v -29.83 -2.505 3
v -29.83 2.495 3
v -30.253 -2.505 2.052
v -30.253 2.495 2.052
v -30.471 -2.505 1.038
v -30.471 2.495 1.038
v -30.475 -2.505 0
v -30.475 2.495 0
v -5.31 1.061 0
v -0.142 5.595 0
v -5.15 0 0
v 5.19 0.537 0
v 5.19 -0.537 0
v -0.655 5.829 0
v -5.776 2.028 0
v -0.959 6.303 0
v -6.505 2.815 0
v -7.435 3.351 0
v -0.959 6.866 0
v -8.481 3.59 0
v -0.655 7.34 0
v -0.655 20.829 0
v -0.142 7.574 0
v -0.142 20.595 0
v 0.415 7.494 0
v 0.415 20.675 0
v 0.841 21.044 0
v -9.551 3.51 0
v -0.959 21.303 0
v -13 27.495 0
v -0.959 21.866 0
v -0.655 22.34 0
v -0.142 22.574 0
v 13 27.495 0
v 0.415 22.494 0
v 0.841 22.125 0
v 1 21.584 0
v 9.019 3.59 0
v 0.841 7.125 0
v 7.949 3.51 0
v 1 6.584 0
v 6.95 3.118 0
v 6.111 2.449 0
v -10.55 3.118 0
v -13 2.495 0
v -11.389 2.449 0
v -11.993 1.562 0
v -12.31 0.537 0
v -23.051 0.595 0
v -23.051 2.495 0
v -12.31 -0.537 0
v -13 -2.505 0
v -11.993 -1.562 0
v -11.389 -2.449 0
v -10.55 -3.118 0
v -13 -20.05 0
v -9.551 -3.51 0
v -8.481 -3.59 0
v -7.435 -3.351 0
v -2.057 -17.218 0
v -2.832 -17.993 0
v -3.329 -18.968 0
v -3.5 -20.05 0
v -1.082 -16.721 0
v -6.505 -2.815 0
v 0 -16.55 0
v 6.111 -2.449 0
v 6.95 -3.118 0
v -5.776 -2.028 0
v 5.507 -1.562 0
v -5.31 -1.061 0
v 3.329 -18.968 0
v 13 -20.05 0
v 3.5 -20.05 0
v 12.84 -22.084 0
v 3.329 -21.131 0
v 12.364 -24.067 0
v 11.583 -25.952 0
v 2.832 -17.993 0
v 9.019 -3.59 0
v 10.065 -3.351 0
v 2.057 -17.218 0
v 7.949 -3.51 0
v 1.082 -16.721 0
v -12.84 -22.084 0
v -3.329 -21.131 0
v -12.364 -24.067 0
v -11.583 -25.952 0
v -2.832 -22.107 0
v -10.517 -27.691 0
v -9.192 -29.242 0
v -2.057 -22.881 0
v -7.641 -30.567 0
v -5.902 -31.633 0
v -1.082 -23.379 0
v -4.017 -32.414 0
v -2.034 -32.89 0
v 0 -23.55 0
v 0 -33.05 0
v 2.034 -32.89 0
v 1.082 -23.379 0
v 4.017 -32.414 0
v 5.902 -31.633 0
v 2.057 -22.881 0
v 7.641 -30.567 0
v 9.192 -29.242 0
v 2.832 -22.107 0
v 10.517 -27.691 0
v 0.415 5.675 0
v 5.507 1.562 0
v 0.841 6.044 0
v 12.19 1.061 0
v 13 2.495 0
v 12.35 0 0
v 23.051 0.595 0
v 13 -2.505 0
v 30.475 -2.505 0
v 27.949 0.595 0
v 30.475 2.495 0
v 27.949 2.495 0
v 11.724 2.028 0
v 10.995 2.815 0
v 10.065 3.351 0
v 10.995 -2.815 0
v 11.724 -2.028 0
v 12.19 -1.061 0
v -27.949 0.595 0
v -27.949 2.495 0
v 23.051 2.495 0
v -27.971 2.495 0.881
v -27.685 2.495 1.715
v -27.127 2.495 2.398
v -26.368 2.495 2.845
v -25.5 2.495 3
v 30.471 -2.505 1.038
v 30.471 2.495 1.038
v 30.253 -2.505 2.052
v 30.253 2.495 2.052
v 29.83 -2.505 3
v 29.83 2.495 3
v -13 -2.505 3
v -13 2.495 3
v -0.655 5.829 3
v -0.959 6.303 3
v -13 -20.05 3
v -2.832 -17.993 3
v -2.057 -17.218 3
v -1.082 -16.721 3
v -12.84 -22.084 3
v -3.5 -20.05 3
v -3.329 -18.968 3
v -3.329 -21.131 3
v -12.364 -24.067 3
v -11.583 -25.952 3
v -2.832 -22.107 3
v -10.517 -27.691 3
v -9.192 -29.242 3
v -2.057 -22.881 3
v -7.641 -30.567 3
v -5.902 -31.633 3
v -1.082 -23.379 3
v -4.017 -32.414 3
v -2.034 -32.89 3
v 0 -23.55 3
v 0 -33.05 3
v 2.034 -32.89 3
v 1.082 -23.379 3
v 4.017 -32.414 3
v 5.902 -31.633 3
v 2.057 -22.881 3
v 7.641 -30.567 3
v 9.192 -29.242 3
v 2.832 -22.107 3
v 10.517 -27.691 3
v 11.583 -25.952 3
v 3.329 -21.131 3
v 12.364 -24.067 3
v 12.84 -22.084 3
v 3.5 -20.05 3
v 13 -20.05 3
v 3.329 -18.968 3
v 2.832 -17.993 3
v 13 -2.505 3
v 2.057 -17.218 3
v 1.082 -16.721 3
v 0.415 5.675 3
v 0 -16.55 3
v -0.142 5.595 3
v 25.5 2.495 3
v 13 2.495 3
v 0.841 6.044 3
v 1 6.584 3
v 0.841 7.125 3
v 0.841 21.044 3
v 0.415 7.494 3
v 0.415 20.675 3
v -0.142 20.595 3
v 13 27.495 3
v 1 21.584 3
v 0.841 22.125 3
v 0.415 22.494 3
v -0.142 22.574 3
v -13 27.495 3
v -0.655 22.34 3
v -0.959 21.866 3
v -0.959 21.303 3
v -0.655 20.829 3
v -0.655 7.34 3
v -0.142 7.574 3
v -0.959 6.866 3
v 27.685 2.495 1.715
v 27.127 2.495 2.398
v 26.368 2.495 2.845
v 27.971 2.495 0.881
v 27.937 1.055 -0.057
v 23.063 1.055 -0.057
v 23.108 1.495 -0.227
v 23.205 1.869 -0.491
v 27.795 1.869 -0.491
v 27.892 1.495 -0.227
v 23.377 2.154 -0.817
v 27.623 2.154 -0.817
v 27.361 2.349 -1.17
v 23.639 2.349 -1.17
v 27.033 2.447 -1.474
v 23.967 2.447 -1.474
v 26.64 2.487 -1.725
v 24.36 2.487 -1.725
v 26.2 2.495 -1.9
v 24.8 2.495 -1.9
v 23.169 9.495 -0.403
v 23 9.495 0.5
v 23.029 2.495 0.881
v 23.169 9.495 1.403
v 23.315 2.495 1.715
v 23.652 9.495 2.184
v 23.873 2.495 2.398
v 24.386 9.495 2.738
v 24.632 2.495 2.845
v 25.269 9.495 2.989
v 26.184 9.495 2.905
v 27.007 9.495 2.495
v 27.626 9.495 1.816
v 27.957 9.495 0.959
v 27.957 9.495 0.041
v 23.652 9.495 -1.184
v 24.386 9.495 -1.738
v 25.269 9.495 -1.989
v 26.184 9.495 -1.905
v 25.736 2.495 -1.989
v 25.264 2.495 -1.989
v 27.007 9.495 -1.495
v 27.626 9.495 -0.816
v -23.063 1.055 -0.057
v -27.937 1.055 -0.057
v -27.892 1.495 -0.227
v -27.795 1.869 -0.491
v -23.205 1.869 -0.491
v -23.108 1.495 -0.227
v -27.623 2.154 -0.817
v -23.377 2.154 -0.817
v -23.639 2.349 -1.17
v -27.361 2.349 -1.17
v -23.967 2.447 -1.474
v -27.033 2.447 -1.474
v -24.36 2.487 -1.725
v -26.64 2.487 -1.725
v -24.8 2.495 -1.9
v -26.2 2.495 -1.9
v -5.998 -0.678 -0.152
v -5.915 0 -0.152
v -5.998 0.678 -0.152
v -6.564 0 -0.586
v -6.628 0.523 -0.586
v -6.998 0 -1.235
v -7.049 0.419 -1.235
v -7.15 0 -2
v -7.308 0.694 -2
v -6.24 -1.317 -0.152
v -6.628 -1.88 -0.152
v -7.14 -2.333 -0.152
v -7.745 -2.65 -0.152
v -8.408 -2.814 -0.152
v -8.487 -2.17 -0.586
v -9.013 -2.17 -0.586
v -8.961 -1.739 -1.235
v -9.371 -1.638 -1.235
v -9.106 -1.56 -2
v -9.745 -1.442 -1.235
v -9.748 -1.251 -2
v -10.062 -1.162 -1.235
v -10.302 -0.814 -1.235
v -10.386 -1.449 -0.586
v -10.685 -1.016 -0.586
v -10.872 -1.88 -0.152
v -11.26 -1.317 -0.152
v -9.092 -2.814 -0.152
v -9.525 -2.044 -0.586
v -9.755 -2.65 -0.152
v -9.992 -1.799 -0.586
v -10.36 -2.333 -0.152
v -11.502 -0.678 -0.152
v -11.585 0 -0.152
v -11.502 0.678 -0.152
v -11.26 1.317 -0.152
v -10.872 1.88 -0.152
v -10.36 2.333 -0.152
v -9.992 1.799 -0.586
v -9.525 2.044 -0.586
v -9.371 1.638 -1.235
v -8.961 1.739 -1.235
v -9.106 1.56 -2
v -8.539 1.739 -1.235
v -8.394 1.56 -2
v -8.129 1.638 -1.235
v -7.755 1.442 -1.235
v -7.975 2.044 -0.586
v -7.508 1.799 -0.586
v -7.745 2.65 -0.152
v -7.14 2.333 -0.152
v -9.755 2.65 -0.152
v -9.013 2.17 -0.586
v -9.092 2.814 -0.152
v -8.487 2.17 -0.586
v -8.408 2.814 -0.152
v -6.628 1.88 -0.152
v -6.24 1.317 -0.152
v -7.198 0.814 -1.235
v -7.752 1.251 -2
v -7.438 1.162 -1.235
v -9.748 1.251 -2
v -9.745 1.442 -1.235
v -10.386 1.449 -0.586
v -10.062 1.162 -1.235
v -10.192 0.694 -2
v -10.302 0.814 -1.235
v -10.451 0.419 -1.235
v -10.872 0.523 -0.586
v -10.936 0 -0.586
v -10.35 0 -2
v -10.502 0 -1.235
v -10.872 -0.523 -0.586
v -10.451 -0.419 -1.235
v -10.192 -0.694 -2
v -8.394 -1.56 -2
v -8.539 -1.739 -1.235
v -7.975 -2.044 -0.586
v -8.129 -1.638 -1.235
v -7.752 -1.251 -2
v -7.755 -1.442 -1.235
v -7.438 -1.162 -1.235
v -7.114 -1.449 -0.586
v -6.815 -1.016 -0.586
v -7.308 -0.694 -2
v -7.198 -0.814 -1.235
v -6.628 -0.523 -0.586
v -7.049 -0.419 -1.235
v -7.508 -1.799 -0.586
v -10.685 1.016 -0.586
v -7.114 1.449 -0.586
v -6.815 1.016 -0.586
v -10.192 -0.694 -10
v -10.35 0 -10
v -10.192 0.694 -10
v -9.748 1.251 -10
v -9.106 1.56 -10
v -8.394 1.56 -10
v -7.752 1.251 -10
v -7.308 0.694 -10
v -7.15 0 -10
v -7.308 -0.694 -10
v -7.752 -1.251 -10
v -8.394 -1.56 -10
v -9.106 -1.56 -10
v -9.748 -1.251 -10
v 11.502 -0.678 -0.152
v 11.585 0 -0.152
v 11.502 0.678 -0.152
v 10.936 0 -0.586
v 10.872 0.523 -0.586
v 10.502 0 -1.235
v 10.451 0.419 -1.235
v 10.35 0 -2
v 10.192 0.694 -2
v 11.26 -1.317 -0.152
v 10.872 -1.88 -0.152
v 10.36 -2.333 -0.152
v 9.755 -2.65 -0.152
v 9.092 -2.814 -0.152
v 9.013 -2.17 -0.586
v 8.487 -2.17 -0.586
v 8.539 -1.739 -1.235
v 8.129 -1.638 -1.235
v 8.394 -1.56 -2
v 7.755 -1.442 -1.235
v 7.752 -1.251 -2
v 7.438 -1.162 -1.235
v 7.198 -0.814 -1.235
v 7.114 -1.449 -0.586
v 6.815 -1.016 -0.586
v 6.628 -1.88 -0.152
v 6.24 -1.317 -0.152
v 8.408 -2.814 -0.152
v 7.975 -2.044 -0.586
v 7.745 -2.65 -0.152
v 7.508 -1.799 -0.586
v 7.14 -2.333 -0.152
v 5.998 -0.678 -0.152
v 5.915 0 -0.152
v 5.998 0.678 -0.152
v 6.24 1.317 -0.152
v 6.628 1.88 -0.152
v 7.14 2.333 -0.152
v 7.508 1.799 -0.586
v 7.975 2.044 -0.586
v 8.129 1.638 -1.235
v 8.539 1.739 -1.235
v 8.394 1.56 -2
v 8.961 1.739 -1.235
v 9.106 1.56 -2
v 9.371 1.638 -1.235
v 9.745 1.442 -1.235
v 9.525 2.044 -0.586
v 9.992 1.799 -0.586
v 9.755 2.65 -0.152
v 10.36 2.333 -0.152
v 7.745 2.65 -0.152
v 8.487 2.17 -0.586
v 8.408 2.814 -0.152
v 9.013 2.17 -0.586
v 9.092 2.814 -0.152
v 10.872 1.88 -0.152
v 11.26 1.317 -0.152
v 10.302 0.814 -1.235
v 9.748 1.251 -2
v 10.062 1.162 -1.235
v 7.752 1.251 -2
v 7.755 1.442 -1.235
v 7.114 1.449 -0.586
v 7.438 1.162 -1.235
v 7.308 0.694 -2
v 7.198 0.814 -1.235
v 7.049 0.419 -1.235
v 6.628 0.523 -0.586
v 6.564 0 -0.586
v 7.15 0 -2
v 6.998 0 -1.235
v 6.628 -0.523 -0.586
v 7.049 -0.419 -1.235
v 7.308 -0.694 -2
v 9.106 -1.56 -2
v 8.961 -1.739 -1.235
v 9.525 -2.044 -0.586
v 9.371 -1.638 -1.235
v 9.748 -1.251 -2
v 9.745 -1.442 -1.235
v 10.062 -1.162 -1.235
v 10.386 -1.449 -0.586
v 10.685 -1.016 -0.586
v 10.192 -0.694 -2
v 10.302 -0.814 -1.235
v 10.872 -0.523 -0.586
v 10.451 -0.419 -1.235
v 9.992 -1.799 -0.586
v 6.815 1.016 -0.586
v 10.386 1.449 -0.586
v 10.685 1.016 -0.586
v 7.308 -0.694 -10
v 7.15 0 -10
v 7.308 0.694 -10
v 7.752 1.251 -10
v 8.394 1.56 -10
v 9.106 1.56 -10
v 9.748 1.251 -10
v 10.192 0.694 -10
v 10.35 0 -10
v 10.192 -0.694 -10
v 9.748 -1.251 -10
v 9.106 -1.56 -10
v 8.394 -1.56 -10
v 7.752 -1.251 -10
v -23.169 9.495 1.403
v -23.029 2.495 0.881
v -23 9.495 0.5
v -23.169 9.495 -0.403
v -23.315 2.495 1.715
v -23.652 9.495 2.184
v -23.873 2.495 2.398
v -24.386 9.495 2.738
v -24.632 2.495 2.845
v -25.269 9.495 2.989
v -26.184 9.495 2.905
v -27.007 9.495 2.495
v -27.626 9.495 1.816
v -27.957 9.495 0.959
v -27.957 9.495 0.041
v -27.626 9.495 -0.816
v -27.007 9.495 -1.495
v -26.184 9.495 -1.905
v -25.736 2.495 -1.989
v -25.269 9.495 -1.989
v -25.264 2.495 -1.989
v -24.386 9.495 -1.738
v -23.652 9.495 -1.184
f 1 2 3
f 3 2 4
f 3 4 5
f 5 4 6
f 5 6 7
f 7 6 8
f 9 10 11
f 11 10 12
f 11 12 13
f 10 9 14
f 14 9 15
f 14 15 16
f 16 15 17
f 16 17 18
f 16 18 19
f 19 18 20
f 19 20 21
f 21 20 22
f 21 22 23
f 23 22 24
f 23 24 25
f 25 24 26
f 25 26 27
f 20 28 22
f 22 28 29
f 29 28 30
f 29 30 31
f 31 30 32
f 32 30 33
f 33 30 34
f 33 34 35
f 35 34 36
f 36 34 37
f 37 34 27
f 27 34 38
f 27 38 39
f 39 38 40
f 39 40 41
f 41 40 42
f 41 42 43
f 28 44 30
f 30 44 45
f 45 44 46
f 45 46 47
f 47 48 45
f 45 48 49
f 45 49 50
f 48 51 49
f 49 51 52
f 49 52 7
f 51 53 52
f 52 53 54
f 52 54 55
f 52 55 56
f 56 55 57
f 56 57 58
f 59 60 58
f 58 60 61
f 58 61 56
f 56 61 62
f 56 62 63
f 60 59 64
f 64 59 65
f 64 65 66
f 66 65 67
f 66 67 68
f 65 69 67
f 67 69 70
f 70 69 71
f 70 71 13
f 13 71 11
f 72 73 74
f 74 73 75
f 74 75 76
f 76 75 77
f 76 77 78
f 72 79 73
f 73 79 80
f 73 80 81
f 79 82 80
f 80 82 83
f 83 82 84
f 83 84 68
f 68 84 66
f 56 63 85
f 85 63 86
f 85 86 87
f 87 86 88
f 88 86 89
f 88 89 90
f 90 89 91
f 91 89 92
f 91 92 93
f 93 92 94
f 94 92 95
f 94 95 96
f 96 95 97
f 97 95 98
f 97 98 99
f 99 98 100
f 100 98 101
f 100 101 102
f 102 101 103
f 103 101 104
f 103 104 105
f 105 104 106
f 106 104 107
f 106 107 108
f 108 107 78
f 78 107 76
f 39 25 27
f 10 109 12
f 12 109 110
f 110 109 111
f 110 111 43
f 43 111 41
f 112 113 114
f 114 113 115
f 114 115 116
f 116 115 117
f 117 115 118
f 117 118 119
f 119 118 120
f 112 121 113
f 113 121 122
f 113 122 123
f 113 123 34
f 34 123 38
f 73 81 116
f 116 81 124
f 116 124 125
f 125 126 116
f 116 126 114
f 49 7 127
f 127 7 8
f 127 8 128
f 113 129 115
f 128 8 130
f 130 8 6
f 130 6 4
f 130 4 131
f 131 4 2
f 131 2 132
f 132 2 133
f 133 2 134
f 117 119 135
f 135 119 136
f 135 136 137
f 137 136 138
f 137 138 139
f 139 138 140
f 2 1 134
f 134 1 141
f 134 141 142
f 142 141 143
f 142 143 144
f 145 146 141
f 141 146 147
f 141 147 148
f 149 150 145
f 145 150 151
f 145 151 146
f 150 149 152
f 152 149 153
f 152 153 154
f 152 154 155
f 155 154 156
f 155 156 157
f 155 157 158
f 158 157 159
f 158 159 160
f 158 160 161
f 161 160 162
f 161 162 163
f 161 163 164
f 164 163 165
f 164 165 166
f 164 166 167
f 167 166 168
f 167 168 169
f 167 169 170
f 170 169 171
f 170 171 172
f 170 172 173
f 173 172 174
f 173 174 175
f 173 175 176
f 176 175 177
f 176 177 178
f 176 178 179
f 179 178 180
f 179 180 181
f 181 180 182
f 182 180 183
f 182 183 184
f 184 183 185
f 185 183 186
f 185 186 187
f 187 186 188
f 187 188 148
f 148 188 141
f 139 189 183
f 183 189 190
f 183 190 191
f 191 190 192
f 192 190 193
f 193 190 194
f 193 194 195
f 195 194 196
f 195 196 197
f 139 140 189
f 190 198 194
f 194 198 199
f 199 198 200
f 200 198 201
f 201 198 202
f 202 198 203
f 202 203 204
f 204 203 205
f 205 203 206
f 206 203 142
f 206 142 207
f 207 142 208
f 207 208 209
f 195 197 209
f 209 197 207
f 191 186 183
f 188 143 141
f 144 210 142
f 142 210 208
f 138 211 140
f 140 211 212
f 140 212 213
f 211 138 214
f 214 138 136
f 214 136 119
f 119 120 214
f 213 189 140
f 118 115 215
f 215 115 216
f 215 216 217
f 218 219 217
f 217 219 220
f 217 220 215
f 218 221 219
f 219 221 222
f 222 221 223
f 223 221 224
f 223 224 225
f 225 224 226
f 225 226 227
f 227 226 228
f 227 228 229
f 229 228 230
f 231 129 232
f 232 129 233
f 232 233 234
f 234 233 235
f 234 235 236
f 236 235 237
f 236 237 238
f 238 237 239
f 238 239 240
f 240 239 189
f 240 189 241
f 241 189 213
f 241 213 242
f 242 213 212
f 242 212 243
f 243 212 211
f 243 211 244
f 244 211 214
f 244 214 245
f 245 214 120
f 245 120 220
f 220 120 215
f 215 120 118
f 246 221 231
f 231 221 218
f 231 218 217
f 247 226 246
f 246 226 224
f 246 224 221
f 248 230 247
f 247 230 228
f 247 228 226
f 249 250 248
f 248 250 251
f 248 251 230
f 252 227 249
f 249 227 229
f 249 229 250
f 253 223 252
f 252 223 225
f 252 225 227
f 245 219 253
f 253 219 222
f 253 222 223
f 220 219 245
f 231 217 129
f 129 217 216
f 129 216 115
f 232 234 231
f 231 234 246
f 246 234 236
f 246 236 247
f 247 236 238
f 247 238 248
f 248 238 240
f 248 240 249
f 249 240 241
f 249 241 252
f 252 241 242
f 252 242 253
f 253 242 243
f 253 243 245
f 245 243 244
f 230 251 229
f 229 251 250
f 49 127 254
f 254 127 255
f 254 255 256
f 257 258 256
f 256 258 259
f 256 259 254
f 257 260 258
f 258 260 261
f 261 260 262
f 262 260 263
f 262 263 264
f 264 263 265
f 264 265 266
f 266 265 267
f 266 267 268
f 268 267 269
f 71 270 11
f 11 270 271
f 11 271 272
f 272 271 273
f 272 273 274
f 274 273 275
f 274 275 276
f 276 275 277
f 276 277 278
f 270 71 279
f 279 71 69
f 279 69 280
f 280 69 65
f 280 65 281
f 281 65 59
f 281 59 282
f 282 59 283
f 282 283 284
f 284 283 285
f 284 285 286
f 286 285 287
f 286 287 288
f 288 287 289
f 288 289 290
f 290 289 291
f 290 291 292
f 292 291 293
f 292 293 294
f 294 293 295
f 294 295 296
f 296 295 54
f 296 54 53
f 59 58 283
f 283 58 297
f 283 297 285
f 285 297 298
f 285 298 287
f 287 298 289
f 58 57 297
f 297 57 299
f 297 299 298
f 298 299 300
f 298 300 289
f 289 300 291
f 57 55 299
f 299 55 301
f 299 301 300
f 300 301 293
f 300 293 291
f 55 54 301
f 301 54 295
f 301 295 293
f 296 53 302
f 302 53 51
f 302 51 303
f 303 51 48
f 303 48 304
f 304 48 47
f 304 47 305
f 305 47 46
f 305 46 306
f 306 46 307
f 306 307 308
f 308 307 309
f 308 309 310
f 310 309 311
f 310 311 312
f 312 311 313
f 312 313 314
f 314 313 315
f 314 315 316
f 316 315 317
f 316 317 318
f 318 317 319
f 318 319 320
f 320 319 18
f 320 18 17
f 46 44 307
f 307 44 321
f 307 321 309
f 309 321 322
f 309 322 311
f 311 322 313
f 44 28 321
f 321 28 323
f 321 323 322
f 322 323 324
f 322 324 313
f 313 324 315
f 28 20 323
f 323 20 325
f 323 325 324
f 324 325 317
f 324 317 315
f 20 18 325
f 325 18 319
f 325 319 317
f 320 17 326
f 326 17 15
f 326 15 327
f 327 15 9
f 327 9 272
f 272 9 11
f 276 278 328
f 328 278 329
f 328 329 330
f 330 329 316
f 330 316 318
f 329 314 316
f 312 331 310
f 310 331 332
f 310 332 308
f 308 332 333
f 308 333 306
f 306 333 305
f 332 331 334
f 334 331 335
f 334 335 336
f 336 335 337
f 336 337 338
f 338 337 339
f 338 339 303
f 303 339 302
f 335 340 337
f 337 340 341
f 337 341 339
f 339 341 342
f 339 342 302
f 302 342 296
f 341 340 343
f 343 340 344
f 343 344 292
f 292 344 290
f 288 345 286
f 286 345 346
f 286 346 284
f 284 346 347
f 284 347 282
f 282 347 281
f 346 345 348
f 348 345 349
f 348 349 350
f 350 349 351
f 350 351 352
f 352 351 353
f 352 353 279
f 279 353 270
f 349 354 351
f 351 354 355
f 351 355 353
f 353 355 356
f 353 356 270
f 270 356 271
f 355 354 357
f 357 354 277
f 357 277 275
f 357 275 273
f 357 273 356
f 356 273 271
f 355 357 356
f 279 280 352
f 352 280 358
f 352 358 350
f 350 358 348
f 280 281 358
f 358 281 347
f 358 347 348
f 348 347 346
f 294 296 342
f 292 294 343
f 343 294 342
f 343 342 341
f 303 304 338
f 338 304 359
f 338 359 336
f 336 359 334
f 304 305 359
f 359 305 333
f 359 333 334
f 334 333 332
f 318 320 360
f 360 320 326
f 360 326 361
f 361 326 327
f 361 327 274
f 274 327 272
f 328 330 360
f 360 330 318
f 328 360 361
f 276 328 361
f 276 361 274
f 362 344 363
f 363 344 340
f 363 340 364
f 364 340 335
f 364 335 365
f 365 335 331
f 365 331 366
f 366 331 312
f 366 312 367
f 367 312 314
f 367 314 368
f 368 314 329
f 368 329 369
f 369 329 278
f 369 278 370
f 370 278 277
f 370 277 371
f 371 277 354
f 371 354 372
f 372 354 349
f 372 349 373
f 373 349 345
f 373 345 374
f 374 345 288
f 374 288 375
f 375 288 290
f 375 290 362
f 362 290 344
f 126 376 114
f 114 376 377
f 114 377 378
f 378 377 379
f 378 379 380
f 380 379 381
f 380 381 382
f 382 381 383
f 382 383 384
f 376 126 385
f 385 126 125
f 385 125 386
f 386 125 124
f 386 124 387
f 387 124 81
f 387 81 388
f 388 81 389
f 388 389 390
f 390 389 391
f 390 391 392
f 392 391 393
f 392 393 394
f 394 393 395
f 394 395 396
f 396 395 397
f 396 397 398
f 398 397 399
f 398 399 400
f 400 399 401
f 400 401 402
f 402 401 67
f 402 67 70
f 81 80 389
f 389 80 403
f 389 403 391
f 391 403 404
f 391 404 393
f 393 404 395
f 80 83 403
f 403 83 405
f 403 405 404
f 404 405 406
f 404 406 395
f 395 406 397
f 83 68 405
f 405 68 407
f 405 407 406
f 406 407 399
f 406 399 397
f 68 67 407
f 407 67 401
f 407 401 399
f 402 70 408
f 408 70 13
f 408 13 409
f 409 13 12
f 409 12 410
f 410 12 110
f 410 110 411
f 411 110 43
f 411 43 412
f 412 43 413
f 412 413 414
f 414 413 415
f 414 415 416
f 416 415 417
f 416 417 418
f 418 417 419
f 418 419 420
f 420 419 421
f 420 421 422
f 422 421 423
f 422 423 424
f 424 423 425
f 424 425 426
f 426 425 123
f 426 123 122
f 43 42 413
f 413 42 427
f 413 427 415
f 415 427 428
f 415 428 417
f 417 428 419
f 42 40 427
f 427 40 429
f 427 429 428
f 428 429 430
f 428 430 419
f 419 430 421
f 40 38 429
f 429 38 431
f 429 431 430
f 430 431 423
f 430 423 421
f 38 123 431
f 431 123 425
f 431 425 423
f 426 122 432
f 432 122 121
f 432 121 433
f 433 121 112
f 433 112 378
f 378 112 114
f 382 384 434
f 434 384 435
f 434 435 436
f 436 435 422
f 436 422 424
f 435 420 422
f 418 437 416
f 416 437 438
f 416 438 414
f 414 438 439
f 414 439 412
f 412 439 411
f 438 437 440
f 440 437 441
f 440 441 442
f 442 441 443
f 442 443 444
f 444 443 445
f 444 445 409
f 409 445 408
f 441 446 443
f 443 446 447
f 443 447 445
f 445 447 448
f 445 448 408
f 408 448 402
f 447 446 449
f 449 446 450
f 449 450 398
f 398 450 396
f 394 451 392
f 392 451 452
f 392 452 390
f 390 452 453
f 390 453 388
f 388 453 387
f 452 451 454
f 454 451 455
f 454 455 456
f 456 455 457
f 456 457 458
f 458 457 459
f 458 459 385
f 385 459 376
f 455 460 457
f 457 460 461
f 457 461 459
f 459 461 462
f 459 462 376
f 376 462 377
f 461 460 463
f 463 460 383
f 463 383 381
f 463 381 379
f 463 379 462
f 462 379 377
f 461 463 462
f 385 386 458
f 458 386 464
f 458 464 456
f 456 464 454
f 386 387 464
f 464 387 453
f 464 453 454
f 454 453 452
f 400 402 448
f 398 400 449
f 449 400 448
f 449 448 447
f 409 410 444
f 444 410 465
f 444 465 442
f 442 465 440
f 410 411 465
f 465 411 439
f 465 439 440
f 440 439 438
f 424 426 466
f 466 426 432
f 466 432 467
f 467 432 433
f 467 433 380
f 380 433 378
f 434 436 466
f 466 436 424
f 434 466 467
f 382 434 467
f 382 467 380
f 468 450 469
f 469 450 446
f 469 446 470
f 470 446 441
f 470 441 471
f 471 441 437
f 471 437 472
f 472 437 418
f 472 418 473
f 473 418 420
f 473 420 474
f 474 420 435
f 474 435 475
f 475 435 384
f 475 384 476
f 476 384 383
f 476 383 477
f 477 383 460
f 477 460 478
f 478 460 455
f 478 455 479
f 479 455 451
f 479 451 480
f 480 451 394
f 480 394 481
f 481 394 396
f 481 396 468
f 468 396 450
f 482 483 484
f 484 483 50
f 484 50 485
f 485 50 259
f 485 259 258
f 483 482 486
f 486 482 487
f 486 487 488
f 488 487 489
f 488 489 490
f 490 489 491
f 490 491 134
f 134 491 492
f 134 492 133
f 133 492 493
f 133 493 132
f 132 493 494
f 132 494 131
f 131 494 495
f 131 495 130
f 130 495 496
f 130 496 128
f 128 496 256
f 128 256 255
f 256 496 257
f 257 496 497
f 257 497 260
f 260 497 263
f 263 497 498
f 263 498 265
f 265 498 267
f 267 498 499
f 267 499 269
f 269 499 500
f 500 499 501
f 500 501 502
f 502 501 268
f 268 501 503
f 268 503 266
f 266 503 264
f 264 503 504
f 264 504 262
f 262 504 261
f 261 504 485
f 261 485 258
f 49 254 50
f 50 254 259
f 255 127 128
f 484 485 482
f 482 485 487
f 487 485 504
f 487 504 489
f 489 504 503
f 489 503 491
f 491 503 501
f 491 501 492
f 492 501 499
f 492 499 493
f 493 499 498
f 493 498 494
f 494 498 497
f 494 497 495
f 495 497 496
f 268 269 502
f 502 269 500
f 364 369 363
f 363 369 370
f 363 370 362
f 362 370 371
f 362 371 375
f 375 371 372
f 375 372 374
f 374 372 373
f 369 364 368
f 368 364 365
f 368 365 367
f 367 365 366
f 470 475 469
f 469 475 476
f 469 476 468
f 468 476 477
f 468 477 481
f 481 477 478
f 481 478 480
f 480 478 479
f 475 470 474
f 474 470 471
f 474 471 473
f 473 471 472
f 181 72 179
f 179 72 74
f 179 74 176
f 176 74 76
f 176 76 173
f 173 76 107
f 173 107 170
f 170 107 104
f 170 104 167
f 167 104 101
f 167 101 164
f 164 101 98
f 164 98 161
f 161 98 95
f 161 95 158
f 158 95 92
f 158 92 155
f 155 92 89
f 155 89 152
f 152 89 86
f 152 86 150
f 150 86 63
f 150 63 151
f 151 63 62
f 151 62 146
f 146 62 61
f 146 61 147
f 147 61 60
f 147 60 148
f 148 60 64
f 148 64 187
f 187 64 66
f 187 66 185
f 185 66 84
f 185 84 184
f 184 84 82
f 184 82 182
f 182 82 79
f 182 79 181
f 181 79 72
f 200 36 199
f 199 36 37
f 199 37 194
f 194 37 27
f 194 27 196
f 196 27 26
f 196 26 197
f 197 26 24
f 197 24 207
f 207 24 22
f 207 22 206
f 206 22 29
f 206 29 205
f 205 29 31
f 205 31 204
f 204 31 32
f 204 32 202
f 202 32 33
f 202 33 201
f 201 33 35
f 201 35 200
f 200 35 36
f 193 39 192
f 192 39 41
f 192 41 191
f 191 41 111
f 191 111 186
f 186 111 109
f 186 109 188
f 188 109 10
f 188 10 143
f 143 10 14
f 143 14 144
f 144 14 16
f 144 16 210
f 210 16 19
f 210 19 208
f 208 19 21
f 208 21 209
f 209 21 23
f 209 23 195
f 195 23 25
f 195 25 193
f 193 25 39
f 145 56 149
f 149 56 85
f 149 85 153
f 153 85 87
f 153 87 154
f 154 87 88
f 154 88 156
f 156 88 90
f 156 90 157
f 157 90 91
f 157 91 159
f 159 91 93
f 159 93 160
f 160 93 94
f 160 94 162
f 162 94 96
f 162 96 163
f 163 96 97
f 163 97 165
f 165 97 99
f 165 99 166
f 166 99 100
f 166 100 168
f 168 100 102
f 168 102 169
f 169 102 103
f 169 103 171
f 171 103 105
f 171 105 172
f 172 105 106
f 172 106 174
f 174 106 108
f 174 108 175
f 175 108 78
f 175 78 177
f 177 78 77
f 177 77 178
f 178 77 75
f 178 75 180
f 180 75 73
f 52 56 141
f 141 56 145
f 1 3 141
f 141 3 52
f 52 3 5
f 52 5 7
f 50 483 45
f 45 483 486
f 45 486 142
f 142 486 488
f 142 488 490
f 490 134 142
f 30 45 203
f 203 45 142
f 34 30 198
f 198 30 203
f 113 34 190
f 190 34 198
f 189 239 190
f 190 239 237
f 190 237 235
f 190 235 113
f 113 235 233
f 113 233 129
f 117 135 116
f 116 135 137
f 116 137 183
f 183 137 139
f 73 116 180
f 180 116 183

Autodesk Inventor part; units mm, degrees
ref_plane "YZ Plane" through (0, 0, 0) normal (1, 0, 0) x (0, 1, 0)
ref_plane "XZ Plane" through (0, 0, 0) normal (0, 1, 0) x (-1, 0, 0)
ref_plane "XY Plane" through (0, 0, 0) normal (0, 0, 1) x (1, 0, 0)
sketch "Sketch1" plane through (0, 0, 0) normal (0, 0, 1) x (1, 0, 0)
  line L0 (0, 8.9678) -> (0, -21.984)
  line L1 (-55.9342, 0) -> (8.6032, 0)
  circle A0 centre (-8.75, 0) radius 1.6
  circle A1 centre (8.75, 0) radius 1.6
  line L2 (-13, 27.4955) -> (13, 27.4955)
  line L3 (13, 27.4955) -> (13, -20.0499)
  line L4 (-13, -20.0499) -> (-13, 27.4955)
  circle A2 centre (0, 21.5844) radius 1
  circle A3 centre (0, 6.5844) radius 1
  circle A4 centre (0, -20.0499) radius 3.5
  line L5 (0, -20.0499) -> (8.75, 0)
  arc A5 (-13, -20.0499) -> (13, -20.0499) centre (0, -20.0499) ccw
  line L6 (-13, 2.4955) -> (-33, 2.4955)
  line L7 (-33, 2.4955) -> (-33, -2.5045)
  line L8 (-33, -2.5045) -> (-13, -2.5045)
  line L9 (13, 2.4955) -> (33, 2.4955)
  line L10 (33, 2.4955) -> (33, -2.5045)
  line L11 (33, -2.5045) -> (13, -2.5045)
  point P0 (0, 0)
  point P1 (-13, -2.5045)
  dimension "d1" = 17.5
  dimension "d2" = 3.2
  dimension "d3" = 15
  dimension "d4" = 2
  dimension "d7" = 26
  dimension "d8" = 7
  dimension "d9" = 21.876
  dimension "d14" = 5
  dimension "d15" = 20
  dimension "d22" = 25
extrude "Extrusion1" add sketch "Sketch1" along normal blind 3 contours L1 A1 L5 A4 L0 | L7 L6 L4 L1 | L1 L4 L8 L7 | L4 L2 L3 A5 | L3 L9 L10 L11
sketch "Sketch2" plane through (0, 0, 0) normal (0, 0, -1) x (-1, 0, 0)
  circle A0 centre (-8.75, 0) radius 1.6 projected
  circle A1 centre (-8.75, 0) radius 1.6
  circle A2 centre (8.75, 0) radius 1.6 projected
  circle A3 centre (8.75, 0) radius 1.6
  point P0 (0, 0)
extrude "Extrusion2" add sketch "Sketch2" along normal blind 10 and the other way blind 3
sketch "Sketch3" plane through (-33, 2.4955, 0) normal (0, 1, 0) x (1, 0, 0)
  circle A0 centre (7.5, -0.5) radius 2.5
  line L0 (20, 0) -> (0, 0) projected
  line L1 (0, 0) -> (0, -3) projected
  line L2 (0.0505, -3) -> (0, -3)
  line L3 (0, -3) -> (0, 0)
  line L4 (0, 0) -> (9.9495, 0)
  line L5 (20, -3) -> (0, -3) projected
  point P0 (33, 0)
  point P1 (5.1646, -1.3921)
  dimension "d16" = 5
  dimension "d26" = 7.5
extrude "Extrusion3" add sketch "Sketch3" along normal blind 7 contours A0 L0 | L0 A0
fillet "Fillet1" radius 2 2 edges at (10.35, 0, 0) (-7.15, 0, 0)
fillet "Fillet2" radius 1.9 1 edges at (-25.5, 2.4955, 0)
mirror "Mirror1" about plane through (0, 0, 0) normal (1, 0, 0) of "Extrusion3"
mirror "Mirror3" about plane through (0, 0, 0) normal (1, 0, 0) of "Fillet2"
sketch "Sketch5" plane through (25.5, 9.4955, 0.5) normal (0, 1, 0) x (1, 0, 0)
  circle A0 centre (0, 0) radius 5
  line L0 (-12.5, -2.5) -> (7.5, -2.5) projected
  line L1 (4.3301, -2.5) -> (9.1307, -2.5)
  line L2 (9.1307, -2.5) -> (9.1307, 0.5)
  line L3 (9.1307, 0.5) -> (4.9749, 0.5)
  line L4 (-12.5, 0.5) -> (7.5, 0.5) projected
  point P0 (-25.5, 0.5)
  dimension "d27" = 10
extrude "Extrusion5" cut sketch "Sketch5" against normal up to surface (12 mm away) contours A0 L3 L2 L1 L0
mirror "Mirror4" about plane through (0, 0, 0) normal (1, 0, 0) of "Extrusion5"
properties part number "pintutucu"
